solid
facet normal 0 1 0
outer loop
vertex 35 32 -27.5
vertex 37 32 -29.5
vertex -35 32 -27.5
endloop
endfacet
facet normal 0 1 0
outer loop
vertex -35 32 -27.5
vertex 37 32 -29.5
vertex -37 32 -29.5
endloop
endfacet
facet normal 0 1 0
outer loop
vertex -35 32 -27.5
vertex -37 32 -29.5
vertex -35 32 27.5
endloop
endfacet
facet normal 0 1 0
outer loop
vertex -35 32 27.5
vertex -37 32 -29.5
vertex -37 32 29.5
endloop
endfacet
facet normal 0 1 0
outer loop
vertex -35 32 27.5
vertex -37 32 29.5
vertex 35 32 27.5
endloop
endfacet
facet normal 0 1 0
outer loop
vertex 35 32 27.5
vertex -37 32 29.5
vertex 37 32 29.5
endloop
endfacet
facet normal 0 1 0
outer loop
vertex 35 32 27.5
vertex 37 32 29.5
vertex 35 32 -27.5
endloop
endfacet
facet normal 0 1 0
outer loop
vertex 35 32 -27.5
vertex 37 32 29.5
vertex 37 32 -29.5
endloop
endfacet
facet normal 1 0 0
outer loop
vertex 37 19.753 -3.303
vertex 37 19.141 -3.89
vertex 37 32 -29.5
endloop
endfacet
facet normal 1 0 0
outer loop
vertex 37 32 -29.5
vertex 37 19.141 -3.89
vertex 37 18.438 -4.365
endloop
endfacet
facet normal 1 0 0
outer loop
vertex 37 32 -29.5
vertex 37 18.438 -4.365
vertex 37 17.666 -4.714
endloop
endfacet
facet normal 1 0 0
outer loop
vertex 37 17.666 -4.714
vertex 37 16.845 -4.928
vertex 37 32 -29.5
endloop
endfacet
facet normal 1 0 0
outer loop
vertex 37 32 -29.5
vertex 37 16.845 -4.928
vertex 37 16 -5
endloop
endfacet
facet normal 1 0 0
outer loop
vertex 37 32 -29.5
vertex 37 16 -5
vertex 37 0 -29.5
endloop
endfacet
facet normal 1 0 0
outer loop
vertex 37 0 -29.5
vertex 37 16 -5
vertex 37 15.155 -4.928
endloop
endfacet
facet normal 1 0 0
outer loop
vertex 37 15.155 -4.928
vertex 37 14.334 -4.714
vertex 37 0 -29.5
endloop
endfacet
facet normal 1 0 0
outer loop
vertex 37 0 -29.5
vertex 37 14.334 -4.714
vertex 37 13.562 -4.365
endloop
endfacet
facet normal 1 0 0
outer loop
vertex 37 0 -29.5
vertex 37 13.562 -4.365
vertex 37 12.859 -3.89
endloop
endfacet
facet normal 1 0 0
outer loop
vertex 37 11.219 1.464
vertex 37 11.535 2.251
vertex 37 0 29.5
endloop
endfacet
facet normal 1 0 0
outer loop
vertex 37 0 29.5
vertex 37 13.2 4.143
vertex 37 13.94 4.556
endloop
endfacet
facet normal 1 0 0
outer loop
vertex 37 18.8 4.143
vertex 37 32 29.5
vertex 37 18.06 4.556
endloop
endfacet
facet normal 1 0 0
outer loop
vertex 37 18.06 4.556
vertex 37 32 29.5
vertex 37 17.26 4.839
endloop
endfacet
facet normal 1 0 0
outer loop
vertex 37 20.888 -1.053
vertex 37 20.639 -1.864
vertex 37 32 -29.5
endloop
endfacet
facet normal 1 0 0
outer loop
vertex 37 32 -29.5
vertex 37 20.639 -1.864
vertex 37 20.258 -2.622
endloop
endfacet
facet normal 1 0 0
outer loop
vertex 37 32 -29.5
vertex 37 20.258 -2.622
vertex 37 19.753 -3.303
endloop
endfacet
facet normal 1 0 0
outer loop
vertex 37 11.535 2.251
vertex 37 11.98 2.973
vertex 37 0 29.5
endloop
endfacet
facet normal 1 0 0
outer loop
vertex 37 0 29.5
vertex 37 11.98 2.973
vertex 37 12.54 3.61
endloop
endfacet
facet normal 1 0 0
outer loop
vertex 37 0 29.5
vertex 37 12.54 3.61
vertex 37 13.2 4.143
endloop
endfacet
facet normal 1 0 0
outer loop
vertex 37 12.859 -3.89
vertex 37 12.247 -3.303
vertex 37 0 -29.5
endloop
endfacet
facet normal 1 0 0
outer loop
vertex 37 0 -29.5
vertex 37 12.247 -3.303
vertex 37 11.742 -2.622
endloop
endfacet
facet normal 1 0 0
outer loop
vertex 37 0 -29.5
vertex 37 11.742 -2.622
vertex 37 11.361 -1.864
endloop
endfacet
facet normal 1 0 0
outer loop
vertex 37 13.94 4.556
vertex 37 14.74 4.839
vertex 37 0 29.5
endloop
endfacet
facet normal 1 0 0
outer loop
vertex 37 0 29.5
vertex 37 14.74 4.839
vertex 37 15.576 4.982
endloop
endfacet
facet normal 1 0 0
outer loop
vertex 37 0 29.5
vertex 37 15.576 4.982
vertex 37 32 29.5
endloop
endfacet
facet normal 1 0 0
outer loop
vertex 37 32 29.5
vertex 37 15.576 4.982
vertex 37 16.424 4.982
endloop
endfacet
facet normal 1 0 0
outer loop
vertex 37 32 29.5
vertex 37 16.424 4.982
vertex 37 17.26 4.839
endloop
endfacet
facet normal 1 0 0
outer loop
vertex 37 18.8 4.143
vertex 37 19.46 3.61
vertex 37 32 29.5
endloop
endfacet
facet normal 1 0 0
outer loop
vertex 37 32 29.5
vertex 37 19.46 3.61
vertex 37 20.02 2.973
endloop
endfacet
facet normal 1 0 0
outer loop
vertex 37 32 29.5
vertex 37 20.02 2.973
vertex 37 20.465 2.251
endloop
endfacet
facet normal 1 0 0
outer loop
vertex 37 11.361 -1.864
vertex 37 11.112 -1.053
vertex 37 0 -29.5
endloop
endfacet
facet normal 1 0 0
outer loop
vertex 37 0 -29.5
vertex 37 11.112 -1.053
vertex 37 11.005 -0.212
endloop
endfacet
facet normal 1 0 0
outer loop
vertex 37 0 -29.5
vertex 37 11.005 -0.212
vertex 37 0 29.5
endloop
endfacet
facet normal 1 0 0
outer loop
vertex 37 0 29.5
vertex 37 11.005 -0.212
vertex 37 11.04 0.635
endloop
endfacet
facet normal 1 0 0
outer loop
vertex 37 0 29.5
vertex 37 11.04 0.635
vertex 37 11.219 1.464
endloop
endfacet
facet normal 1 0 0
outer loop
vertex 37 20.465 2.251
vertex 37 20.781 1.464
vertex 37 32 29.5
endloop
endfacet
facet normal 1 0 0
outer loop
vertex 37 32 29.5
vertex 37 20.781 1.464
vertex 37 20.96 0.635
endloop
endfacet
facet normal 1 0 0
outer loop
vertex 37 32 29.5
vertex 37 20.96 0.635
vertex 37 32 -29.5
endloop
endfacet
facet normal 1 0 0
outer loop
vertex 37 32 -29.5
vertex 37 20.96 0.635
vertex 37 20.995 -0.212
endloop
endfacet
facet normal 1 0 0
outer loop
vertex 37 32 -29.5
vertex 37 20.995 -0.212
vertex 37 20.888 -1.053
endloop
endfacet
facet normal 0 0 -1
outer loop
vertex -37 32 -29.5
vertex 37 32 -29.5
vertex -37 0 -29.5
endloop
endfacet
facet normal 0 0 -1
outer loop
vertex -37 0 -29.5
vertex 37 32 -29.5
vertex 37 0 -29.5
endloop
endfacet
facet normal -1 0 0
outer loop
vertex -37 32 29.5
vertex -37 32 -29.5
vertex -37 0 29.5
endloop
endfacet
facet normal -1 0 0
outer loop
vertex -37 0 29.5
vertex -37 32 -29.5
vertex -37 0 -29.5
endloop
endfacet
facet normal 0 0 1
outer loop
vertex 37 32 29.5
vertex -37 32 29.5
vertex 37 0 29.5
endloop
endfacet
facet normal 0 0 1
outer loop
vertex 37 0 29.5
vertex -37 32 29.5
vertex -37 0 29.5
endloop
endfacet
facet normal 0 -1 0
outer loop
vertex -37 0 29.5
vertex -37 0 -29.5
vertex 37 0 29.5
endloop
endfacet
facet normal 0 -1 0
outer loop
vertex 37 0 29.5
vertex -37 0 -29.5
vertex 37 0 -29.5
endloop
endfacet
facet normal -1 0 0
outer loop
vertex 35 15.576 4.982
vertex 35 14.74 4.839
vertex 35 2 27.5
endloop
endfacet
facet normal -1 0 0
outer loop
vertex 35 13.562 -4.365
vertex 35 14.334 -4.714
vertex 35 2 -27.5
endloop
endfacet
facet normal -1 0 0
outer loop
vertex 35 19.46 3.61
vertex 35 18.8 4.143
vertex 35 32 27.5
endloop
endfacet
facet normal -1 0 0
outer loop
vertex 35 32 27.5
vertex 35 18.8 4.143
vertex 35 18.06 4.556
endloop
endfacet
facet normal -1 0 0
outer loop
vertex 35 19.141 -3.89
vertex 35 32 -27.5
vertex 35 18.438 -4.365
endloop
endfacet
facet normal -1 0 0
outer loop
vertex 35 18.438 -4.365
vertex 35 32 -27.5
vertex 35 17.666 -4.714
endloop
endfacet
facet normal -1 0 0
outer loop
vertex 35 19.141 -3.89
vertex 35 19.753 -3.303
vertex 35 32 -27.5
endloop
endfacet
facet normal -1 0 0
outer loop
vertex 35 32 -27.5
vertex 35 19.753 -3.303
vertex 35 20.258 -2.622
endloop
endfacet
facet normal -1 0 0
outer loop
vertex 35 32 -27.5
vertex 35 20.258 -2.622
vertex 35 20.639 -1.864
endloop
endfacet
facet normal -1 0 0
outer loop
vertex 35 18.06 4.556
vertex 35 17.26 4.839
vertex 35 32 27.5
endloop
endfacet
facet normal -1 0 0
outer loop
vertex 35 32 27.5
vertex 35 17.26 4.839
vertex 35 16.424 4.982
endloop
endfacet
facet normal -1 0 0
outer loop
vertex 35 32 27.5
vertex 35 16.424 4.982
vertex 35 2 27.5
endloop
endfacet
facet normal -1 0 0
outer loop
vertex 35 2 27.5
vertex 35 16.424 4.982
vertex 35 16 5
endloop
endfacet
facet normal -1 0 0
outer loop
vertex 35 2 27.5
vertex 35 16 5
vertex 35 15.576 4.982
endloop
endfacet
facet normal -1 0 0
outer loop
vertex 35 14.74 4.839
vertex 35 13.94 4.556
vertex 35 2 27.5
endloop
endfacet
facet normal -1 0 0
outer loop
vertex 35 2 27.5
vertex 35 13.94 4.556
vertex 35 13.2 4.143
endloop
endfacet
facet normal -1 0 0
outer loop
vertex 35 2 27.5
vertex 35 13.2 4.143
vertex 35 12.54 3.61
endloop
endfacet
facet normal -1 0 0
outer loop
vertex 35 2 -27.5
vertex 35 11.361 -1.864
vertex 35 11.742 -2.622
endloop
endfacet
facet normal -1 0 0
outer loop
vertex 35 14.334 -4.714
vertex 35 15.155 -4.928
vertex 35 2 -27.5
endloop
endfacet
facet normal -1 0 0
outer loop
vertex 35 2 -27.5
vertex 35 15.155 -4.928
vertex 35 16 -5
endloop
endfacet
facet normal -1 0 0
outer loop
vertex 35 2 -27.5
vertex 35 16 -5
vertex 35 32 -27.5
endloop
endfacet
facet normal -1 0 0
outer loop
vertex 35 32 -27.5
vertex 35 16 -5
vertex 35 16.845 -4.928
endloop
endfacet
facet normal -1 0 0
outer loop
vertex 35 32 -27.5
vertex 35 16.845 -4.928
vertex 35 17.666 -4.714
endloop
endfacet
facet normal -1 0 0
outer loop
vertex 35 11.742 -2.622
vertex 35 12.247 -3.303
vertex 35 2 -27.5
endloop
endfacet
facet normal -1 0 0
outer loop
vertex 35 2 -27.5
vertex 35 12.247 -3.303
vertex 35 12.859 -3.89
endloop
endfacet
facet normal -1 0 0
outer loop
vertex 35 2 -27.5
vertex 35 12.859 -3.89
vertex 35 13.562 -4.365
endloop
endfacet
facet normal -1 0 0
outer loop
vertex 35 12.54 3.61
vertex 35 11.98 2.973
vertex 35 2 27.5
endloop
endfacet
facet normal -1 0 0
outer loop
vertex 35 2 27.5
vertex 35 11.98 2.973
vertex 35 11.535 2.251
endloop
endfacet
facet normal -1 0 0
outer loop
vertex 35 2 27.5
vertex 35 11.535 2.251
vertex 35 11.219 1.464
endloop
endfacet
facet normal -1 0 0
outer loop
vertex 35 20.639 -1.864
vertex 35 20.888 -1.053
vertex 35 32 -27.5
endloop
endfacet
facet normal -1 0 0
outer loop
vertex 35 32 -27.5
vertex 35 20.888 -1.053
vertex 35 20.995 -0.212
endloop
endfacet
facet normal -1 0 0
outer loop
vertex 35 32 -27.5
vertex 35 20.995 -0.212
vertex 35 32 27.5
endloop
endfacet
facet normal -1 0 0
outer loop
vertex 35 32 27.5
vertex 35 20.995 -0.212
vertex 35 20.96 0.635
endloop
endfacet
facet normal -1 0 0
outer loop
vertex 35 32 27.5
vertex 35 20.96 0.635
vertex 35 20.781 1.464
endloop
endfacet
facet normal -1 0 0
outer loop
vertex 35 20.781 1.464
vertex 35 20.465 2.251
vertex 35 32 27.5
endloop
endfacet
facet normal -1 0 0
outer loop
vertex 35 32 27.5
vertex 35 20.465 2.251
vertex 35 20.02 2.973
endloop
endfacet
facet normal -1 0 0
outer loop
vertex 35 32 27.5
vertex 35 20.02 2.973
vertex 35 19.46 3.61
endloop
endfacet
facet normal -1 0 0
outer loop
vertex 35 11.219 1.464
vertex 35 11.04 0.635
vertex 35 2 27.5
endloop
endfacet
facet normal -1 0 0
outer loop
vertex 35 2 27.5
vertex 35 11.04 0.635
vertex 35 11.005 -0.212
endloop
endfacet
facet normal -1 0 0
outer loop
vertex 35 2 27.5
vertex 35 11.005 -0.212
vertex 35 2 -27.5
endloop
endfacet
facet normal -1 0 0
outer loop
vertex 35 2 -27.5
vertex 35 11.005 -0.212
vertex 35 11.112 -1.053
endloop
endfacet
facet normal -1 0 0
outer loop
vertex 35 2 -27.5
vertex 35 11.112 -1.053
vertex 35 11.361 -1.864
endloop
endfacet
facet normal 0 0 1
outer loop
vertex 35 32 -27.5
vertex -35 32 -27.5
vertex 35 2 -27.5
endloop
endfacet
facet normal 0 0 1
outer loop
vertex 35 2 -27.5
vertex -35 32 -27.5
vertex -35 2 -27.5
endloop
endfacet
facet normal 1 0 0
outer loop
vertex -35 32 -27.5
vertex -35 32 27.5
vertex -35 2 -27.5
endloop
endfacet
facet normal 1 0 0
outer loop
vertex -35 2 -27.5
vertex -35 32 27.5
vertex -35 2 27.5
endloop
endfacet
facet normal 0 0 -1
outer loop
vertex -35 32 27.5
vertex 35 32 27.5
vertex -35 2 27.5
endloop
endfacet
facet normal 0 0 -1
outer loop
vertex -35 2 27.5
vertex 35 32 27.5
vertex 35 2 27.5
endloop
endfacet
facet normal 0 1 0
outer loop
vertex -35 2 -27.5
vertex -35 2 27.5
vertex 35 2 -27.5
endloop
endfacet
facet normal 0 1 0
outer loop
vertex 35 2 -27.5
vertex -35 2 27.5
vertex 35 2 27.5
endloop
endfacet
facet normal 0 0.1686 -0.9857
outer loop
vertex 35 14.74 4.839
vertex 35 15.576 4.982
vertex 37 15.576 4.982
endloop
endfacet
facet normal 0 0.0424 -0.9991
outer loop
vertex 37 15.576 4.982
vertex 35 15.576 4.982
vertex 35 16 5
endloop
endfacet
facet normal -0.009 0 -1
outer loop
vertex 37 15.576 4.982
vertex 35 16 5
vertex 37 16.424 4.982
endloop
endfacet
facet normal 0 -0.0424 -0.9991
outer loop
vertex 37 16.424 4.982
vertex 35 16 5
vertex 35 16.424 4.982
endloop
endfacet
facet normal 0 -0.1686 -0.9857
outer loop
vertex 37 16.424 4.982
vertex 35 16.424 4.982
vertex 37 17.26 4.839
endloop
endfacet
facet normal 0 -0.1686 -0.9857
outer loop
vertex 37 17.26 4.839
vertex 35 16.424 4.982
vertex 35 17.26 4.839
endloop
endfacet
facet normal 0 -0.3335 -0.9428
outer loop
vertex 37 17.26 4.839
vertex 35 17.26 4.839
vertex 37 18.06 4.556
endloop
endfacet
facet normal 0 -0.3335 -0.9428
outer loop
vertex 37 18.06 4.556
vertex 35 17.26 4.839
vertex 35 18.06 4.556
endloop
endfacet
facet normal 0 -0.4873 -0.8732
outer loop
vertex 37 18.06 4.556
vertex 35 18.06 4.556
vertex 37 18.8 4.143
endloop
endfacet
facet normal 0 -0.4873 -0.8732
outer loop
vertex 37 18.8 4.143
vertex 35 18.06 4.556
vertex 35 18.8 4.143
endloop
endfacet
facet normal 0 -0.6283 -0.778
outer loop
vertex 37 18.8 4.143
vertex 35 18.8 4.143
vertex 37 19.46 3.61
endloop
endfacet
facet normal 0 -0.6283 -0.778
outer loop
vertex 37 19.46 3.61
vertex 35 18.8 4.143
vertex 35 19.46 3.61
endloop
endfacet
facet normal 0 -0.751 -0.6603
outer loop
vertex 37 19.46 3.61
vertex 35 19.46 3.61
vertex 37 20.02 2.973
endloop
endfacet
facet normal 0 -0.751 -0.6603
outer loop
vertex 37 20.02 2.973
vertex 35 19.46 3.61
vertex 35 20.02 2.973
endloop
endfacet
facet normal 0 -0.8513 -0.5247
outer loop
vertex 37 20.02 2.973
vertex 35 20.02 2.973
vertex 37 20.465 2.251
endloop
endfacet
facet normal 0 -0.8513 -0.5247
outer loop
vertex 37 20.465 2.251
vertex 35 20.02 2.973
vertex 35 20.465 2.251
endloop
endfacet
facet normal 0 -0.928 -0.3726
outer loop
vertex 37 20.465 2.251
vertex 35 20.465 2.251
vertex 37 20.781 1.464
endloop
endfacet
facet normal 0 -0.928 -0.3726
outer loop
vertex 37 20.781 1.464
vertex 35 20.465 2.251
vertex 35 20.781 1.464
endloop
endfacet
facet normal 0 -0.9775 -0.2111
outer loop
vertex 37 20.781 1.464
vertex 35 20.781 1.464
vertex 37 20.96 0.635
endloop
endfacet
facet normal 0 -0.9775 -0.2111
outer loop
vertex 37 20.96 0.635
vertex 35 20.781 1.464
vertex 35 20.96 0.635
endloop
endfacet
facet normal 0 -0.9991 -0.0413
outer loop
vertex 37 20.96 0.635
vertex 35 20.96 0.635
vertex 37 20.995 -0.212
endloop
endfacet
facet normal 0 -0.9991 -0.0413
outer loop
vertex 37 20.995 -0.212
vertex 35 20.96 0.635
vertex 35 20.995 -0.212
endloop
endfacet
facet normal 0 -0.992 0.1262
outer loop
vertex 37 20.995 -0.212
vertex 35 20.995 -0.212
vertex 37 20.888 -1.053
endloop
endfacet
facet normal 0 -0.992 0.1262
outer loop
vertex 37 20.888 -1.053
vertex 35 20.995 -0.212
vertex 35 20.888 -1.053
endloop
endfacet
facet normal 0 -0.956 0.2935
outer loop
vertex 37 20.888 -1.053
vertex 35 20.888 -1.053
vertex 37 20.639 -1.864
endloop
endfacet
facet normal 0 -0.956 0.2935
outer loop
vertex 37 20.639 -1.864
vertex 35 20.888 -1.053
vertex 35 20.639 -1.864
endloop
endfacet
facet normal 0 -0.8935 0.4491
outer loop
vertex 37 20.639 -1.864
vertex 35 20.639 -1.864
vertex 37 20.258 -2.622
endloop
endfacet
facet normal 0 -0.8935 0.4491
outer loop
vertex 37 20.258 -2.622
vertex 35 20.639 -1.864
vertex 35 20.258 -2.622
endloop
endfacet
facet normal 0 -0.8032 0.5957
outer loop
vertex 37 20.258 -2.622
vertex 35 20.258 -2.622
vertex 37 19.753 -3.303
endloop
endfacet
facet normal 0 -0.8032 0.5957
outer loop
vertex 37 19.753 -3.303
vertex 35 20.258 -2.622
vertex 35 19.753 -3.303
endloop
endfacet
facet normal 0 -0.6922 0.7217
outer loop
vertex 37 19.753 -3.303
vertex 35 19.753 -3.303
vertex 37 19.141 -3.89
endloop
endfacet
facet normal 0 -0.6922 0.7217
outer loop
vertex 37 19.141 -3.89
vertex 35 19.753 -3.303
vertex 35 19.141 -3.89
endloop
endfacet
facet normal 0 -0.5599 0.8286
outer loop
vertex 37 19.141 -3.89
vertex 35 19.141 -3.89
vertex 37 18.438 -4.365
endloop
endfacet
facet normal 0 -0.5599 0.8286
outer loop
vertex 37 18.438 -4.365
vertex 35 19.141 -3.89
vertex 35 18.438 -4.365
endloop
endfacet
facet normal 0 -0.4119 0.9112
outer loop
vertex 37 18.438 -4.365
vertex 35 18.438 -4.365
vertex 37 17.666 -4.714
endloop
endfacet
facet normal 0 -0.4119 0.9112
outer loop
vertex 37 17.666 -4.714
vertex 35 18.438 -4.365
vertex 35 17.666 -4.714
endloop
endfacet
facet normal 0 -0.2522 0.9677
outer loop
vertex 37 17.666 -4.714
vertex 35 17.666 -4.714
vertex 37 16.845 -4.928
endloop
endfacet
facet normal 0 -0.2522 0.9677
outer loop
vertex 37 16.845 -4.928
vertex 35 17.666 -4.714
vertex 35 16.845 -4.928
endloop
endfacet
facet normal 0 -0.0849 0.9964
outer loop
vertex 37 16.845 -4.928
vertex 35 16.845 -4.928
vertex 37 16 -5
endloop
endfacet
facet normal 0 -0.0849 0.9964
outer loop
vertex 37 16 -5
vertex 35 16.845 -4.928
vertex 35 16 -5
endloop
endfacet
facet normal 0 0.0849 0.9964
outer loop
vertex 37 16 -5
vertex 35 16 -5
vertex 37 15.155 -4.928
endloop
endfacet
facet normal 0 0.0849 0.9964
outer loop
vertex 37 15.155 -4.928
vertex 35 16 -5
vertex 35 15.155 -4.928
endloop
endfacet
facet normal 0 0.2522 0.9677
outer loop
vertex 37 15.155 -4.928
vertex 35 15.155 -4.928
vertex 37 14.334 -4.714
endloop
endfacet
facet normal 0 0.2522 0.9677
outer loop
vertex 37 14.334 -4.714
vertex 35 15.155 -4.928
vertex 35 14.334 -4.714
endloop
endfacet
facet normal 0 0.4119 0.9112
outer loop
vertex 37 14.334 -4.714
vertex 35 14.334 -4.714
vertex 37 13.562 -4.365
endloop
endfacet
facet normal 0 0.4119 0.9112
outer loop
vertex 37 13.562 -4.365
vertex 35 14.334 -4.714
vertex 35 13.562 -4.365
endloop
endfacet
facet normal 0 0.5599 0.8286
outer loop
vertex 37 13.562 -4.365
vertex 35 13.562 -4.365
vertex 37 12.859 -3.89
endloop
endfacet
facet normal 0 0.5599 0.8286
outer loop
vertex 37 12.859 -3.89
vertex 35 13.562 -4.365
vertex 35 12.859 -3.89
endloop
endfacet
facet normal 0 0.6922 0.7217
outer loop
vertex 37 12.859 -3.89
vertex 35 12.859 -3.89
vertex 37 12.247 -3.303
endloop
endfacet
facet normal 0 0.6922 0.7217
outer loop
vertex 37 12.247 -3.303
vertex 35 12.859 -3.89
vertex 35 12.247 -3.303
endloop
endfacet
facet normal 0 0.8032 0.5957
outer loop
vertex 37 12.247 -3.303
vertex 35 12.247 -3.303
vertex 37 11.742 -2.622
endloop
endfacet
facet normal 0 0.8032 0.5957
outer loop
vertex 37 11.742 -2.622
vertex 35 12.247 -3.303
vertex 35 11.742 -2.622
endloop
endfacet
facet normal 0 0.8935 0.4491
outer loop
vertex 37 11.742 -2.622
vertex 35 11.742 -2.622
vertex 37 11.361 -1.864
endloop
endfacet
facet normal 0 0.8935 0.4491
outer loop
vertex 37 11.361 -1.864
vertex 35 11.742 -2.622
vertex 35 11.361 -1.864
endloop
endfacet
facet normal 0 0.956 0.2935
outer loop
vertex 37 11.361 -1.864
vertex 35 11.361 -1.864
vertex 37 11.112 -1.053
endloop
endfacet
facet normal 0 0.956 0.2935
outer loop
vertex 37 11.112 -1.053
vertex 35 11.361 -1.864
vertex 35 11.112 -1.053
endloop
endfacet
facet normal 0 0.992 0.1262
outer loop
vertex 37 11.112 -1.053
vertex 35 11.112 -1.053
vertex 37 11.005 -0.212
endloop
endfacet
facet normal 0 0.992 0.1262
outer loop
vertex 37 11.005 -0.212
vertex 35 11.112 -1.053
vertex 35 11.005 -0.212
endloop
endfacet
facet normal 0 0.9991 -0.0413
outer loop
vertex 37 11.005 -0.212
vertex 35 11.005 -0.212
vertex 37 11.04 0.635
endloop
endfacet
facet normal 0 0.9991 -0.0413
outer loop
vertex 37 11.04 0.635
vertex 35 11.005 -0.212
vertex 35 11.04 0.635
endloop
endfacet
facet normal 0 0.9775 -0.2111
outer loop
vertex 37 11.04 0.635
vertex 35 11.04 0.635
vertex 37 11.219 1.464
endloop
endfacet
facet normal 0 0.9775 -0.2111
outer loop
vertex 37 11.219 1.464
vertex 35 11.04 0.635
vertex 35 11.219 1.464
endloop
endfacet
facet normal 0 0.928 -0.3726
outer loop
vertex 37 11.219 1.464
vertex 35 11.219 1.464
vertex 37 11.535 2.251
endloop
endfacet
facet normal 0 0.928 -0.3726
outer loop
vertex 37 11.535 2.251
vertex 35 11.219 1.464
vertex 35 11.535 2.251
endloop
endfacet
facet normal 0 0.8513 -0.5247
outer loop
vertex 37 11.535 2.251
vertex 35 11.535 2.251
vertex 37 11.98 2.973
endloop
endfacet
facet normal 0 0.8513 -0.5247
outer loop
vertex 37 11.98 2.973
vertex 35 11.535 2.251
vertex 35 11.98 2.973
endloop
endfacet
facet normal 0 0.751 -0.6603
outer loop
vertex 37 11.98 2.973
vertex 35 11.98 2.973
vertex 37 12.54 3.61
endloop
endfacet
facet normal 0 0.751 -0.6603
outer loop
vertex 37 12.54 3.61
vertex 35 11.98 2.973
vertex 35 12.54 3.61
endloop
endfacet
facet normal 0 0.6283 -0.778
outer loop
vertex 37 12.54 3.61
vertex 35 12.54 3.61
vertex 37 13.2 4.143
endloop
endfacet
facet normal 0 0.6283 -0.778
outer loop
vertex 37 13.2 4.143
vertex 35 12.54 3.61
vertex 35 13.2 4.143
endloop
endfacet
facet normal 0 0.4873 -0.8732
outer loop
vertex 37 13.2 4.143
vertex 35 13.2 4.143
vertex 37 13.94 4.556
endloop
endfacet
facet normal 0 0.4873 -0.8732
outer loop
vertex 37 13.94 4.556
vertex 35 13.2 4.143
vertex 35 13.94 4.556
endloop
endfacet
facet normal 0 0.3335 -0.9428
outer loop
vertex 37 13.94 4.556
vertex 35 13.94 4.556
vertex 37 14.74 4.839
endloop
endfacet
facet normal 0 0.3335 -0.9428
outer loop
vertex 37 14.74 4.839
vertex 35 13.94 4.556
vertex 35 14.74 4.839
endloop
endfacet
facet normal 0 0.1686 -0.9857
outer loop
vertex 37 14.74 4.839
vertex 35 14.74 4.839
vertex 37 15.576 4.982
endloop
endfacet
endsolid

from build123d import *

# Parameters (mm, degrees)
SKETCH1_W           = 74
SKETCH1_H           = 59
BOSS_EXTRUDE1_DEPTH = 32
SHELL1_T            = -2
SKETCH2_R           = 5
CUT_EXTRUDE1_DEPTH  = 3


with BuildPart() as part:
    # Sketch1 → Boss-Extrude1 (new body)
    with BuildSketch(Plane(origin=(0, 0, 0), x_dir=(1, 0, 0), z_dir=(0, 1, 0))):
        Rectangle(SKETCH1_W, SKETCH1_H)
    extrude(amount=BOSS_EXTRUDE1_DEPTH)

    # Shell1
    shell1_openings = [part.faces().sort_by_distance(p)[0] for p in [
        (0, 32, 0),
    ]]
    offset(amount=SHELL1_T, openings=shell1_openings, kind=Kind.INTERSECTION)

    # Sketch2 → Cut-Extrude1 (cut)
    with BuildSketch(Plane(origin=(37, 0, 0), x_dir=(0, 0, -1), z_dir=(1, 0, 0))):
        with Locations((0, 16)):
            Circle(SKETCH2_R)
    extrude(amount=-CUT_EXTRUDE1_DEPTH, mode=Mode.SUBTRACT)


solid = part.part
